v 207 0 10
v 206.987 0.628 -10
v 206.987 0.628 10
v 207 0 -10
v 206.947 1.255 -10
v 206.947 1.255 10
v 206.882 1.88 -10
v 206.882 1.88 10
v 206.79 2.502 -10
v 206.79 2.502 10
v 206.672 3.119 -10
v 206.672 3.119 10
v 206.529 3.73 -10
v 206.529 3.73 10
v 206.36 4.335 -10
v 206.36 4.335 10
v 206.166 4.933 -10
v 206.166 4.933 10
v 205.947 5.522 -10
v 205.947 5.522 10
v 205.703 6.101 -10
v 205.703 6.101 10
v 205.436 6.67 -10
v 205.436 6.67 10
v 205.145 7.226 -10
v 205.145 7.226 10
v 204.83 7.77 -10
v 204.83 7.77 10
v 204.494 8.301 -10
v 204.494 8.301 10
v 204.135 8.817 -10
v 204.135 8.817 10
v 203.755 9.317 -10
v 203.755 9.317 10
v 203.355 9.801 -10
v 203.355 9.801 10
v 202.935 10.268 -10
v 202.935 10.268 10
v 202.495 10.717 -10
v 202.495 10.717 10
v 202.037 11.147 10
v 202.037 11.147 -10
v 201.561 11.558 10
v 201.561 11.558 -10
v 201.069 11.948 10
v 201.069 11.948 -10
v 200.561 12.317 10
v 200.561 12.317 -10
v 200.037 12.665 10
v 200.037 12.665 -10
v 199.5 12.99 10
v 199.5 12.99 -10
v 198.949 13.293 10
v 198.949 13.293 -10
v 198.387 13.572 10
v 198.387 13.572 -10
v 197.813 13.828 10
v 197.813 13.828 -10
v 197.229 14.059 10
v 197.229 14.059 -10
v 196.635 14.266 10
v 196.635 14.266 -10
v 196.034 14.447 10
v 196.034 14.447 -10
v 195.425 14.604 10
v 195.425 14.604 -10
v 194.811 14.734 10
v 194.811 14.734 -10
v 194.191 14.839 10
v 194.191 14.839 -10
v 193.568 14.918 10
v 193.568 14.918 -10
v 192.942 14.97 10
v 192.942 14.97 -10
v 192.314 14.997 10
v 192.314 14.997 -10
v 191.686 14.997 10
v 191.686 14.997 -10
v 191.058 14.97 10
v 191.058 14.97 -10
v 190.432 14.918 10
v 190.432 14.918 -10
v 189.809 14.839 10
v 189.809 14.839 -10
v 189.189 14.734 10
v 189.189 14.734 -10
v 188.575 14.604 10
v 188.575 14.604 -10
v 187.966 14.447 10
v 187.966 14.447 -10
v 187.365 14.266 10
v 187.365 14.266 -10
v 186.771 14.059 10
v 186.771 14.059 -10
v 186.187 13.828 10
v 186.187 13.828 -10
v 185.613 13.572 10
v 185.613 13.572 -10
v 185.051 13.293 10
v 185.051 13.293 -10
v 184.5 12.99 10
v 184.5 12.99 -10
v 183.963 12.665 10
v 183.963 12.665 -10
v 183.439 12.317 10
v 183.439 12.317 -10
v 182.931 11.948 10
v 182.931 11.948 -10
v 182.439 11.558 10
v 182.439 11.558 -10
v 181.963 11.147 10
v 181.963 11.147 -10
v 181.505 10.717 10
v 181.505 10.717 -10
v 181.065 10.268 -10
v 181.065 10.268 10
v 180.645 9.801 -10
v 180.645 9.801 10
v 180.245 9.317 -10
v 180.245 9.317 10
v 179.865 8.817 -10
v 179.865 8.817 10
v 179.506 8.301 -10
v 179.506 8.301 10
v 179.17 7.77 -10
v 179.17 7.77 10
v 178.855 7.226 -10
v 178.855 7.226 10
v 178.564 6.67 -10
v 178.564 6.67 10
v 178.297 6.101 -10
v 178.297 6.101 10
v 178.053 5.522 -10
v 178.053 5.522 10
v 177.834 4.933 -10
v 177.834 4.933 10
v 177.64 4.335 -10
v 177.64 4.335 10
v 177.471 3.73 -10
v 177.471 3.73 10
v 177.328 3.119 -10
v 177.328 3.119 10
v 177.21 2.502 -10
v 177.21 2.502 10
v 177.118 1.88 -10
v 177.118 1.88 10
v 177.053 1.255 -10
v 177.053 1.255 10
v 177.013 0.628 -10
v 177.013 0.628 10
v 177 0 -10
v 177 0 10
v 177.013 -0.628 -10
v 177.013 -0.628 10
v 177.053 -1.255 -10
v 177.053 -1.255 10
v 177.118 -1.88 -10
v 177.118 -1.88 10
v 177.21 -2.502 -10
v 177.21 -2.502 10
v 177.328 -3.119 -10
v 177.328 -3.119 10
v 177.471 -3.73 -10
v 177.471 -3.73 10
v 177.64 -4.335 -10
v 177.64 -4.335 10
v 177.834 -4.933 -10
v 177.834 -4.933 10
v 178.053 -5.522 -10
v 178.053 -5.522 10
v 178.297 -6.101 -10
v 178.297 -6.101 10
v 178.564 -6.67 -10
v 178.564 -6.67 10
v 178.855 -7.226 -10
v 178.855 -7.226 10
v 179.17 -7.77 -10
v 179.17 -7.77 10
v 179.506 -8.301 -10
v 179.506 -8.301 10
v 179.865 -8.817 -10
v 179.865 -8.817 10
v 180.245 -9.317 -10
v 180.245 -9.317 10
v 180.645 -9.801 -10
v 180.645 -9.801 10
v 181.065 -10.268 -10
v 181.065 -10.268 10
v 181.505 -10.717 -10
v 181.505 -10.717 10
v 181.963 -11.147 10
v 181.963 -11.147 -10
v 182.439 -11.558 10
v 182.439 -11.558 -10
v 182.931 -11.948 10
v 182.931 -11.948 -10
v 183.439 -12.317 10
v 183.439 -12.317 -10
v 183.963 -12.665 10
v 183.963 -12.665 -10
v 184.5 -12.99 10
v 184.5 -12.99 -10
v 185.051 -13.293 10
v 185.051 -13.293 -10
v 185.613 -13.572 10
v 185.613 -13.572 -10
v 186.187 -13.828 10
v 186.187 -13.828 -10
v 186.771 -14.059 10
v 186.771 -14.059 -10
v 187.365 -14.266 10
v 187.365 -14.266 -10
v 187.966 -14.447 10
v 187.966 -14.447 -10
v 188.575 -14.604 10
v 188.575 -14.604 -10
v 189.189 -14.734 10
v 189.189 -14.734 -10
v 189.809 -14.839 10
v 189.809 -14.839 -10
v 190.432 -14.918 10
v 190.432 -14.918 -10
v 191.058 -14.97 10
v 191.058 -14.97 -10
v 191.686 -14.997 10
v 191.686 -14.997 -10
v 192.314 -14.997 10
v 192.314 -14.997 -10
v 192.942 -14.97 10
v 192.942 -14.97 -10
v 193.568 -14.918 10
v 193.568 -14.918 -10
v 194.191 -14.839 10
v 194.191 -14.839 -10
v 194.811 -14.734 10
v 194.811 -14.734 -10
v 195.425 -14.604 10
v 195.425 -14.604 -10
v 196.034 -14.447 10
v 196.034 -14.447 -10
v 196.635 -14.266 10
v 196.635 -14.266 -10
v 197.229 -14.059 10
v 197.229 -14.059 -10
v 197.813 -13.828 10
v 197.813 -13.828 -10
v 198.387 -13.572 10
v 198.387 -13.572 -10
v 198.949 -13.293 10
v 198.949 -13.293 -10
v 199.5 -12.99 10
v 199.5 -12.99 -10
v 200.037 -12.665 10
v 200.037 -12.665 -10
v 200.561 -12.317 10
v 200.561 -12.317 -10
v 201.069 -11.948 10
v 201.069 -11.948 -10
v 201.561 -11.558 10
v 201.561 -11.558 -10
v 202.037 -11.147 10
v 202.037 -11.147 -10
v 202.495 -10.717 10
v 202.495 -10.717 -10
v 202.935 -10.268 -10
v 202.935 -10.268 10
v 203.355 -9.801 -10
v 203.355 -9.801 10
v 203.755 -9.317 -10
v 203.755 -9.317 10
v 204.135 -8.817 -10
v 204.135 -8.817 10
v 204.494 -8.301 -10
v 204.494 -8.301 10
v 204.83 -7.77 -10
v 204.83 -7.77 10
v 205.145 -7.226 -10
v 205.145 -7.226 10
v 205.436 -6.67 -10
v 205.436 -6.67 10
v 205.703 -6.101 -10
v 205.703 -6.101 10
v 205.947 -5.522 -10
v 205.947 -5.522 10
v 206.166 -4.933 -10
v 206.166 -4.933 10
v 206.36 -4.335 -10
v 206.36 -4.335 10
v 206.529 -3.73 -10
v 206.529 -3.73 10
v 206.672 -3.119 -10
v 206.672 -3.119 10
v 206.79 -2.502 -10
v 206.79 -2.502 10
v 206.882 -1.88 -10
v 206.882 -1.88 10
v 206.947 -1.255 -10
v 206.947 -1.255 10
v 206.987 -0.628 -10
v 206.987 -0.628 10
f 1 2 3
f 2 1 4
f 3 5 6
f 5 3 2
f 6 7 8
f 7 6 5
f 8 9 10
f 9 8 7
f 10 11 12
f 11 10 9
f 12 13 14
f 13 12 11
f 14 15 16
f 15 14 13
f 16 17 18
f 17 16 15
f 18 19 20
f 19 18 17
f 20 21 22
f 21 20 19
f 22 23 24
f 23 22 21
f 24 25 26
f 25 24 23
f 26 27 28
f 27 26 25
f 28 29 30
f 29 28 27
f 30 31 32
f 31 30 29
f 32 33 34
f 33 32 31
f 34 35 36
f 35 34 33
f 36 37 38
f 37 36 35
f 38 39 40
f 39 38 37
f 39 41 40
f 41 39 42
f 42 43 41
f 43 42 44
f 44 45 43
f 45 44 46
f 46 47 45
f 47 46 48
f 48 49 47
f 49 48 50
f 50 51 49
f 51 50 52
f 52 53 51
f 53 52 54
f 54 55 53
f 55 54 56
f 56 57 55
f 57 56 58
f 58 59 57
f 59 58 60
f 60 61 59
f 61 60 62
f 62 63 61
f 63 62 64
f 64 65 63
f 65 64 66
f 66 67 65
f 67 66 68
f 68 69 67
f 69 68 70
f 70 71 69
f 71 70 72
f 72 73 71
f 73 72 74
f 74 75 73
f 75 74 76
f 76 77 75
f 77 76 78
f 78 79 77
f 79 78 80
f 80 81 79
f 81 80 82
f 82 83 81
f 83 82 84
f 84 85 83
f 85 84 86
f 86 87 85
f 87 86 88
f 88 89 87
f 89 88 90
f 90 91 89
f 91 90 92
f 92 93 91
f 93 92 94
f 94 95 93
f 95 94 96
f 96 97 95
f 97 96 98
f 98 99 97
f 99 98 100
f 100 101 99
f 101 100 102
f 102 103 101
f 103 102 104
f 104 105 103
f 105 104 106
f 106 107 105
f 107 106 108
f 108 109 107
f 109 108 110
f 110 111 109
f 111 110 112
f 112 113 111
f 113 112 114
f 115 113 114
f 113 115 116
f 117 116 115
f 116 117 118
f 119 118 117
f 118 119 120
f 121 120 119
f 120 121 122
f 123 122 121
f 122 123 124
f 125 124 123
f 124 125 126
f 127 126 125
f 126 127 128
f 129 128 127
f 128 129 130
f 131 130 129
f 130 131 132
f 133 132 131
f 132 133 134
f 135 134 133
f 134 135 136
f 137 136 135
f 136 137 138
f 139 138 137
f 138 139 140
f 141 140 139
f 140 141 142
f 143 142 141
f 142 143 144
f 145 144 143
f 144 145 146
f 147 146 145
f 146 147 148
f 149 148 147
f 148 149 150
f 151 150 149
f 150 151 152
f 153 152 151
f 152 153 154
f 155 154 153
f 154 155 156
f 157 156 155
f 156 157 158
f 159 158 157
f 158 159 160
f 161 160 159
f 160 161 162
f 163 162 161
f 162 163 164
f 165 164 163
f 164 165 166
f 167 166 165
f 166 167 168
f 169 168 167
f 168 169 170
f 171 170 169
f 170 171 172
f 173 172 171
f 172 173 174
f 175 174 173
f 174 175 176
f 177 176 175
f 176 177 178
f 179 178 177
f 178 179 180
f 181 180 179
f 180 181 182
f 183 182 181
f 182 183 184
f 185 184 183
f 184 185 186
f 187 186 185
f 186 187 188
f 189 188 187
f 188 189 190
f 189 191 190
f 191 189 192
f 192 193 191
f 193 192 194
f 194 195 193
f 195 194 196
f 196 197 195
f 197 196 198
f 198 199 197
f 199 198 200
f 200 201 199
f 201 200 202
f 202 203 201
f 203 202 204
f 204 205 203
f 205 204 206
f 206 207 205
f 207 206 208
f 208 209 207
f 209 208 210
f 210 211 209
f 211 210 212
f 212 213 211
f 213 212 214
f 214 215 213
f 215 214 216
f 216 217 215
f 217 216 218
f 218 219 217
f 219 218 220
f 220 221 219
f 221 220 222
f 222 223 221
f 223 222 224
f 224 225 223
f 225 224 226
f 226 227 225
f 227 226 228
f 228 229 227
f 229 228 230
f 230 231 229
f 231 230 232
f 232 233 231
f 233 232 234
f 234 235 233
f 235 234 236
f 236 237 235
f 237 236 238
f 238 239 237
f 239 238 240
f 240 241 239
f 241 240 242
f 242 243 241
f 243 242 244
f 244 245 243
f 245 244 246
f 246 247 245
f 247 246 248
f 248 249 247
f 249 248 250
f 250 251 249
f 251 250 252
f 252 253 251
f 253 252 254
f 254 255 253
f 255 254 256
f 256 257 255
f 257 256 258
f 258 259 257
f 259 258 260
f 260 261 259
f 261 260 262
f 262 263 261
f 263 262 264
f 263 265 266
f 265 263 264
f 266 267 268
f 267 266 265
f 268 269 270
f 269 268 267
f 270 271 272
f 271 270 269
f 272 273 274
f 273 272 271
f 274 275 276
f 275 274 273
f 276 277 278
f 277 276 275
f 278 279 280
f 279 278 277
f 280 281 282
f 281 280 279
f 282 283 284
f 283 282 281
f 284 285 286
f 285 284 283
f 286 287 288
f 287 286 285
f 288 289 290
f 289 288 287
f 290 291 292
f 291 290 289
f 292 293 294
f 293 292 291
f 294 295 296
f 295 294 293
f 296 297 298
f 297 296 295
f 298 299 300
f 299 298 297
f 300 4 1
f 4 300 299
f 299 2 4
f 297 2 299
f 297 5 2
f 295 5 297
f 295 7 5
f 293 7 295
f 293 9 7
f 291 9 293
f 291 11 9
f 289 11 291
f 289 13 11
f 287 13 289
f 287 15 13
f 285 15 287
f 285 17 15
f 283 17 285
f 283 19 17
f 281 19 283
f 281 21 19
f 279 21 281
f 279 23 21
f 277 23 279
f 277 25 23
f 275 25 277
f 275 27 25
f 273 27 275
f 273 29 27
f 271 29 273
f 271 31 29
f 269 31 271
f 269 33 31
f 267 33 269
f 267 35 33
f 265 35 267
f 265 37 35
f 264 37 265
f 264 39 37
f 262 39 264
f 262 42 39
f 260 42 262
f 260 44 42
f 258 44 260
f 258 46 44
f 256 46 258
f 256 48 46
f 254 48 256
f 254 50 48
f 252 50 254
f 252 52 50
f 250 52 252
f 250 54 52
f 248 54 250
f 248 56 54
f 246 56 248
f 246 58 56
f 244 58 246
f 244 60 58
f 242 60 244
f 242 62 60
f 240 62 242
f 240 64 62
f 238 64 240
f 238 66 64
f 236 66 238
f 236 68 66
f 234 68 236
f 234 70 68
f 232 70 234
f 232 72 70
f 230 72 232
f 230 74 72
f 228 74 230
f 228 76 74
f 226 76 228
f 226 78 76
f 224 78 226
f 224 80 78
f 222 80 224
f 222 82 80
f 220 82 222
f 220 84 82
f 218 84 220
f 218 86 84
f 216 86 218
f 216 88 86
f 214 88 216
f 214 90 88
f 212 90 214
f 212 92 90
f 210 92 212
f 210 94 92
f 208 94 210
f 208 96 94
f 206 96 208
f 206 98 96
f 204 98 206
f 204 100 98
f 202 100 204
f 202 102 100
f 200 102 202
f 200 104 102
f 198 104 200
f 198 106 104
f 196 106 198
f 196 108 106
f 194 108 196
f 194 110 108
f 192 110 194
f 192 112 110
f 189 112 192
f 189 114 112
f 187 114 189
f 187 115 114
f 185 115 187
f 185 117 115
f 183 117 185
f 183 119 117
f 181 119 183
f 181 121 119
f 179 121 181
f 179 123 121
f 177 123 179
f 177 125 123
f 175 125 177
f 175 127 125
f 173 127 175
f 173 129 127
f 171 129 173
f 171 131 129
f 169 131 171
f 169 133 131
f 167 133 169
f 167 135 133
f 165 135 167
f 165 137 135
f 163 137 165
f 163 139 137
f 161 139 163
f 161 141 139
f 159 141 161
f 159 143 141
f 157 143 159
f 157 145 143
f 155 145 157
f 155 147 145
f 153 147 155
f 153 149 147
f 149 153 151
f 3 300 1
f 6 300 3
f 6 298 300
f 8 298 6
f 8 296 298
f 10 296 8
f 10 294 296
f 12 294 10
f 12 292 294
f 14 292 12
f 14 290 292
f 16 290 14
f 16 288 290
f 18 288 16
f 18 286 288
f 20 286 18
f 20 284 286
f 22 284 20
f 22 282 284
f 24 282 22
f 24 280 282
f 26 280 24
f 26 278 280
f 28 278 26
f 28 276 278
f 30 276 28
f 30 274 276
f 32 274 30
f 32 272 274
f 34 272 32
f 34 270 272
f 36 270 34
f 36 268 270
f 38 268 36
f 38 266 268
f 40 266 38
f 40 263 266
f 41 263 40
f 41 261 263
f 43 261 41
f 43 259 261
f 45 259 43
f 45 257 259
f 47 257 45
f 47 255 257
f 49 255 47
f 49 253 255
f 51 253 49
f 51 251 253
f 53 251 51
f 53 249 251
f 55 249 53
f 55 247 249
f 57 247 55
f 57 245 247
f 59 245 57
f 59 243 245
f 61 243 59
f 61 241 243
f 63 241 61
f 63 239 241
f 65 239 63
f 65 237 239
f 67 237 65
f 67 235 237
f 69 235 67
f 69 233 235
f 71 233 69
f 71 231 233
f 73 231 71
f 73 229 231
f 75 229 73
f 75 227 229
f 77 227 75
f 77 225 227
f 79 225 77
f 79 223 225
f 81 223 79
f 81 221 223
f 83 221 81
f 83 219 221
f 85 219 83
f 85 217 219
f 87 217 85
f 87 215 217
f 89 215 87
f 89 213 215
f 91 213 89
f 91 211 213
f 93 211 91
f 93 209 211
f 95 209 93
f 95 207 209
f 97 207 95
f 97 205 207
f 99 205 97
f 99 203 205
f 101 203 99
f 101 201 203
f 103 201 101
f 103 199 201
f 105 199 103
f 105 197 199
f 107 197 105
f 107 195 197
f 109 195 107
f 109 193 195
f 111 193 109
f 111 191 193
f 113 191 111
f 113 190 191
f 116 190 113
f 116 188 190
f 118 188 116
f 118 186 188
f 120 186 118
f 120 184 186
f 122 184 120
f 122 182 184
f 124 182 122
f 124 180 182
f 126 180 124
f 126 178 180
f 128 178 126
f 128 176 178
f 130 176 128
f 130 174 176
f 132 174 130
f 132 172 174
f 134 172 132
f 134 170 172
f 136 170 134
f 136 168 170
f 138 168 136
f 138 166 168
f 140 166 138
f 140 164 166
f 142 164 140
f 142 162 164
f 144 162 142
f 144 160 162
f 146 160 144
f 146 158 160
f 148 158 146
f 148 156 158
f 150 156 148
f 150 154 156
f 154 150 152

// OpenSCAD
$fn = 150;

translate([192, 0, 0])
rotate([0, 0, 0])
cylinder(20, 15, 15, true);
